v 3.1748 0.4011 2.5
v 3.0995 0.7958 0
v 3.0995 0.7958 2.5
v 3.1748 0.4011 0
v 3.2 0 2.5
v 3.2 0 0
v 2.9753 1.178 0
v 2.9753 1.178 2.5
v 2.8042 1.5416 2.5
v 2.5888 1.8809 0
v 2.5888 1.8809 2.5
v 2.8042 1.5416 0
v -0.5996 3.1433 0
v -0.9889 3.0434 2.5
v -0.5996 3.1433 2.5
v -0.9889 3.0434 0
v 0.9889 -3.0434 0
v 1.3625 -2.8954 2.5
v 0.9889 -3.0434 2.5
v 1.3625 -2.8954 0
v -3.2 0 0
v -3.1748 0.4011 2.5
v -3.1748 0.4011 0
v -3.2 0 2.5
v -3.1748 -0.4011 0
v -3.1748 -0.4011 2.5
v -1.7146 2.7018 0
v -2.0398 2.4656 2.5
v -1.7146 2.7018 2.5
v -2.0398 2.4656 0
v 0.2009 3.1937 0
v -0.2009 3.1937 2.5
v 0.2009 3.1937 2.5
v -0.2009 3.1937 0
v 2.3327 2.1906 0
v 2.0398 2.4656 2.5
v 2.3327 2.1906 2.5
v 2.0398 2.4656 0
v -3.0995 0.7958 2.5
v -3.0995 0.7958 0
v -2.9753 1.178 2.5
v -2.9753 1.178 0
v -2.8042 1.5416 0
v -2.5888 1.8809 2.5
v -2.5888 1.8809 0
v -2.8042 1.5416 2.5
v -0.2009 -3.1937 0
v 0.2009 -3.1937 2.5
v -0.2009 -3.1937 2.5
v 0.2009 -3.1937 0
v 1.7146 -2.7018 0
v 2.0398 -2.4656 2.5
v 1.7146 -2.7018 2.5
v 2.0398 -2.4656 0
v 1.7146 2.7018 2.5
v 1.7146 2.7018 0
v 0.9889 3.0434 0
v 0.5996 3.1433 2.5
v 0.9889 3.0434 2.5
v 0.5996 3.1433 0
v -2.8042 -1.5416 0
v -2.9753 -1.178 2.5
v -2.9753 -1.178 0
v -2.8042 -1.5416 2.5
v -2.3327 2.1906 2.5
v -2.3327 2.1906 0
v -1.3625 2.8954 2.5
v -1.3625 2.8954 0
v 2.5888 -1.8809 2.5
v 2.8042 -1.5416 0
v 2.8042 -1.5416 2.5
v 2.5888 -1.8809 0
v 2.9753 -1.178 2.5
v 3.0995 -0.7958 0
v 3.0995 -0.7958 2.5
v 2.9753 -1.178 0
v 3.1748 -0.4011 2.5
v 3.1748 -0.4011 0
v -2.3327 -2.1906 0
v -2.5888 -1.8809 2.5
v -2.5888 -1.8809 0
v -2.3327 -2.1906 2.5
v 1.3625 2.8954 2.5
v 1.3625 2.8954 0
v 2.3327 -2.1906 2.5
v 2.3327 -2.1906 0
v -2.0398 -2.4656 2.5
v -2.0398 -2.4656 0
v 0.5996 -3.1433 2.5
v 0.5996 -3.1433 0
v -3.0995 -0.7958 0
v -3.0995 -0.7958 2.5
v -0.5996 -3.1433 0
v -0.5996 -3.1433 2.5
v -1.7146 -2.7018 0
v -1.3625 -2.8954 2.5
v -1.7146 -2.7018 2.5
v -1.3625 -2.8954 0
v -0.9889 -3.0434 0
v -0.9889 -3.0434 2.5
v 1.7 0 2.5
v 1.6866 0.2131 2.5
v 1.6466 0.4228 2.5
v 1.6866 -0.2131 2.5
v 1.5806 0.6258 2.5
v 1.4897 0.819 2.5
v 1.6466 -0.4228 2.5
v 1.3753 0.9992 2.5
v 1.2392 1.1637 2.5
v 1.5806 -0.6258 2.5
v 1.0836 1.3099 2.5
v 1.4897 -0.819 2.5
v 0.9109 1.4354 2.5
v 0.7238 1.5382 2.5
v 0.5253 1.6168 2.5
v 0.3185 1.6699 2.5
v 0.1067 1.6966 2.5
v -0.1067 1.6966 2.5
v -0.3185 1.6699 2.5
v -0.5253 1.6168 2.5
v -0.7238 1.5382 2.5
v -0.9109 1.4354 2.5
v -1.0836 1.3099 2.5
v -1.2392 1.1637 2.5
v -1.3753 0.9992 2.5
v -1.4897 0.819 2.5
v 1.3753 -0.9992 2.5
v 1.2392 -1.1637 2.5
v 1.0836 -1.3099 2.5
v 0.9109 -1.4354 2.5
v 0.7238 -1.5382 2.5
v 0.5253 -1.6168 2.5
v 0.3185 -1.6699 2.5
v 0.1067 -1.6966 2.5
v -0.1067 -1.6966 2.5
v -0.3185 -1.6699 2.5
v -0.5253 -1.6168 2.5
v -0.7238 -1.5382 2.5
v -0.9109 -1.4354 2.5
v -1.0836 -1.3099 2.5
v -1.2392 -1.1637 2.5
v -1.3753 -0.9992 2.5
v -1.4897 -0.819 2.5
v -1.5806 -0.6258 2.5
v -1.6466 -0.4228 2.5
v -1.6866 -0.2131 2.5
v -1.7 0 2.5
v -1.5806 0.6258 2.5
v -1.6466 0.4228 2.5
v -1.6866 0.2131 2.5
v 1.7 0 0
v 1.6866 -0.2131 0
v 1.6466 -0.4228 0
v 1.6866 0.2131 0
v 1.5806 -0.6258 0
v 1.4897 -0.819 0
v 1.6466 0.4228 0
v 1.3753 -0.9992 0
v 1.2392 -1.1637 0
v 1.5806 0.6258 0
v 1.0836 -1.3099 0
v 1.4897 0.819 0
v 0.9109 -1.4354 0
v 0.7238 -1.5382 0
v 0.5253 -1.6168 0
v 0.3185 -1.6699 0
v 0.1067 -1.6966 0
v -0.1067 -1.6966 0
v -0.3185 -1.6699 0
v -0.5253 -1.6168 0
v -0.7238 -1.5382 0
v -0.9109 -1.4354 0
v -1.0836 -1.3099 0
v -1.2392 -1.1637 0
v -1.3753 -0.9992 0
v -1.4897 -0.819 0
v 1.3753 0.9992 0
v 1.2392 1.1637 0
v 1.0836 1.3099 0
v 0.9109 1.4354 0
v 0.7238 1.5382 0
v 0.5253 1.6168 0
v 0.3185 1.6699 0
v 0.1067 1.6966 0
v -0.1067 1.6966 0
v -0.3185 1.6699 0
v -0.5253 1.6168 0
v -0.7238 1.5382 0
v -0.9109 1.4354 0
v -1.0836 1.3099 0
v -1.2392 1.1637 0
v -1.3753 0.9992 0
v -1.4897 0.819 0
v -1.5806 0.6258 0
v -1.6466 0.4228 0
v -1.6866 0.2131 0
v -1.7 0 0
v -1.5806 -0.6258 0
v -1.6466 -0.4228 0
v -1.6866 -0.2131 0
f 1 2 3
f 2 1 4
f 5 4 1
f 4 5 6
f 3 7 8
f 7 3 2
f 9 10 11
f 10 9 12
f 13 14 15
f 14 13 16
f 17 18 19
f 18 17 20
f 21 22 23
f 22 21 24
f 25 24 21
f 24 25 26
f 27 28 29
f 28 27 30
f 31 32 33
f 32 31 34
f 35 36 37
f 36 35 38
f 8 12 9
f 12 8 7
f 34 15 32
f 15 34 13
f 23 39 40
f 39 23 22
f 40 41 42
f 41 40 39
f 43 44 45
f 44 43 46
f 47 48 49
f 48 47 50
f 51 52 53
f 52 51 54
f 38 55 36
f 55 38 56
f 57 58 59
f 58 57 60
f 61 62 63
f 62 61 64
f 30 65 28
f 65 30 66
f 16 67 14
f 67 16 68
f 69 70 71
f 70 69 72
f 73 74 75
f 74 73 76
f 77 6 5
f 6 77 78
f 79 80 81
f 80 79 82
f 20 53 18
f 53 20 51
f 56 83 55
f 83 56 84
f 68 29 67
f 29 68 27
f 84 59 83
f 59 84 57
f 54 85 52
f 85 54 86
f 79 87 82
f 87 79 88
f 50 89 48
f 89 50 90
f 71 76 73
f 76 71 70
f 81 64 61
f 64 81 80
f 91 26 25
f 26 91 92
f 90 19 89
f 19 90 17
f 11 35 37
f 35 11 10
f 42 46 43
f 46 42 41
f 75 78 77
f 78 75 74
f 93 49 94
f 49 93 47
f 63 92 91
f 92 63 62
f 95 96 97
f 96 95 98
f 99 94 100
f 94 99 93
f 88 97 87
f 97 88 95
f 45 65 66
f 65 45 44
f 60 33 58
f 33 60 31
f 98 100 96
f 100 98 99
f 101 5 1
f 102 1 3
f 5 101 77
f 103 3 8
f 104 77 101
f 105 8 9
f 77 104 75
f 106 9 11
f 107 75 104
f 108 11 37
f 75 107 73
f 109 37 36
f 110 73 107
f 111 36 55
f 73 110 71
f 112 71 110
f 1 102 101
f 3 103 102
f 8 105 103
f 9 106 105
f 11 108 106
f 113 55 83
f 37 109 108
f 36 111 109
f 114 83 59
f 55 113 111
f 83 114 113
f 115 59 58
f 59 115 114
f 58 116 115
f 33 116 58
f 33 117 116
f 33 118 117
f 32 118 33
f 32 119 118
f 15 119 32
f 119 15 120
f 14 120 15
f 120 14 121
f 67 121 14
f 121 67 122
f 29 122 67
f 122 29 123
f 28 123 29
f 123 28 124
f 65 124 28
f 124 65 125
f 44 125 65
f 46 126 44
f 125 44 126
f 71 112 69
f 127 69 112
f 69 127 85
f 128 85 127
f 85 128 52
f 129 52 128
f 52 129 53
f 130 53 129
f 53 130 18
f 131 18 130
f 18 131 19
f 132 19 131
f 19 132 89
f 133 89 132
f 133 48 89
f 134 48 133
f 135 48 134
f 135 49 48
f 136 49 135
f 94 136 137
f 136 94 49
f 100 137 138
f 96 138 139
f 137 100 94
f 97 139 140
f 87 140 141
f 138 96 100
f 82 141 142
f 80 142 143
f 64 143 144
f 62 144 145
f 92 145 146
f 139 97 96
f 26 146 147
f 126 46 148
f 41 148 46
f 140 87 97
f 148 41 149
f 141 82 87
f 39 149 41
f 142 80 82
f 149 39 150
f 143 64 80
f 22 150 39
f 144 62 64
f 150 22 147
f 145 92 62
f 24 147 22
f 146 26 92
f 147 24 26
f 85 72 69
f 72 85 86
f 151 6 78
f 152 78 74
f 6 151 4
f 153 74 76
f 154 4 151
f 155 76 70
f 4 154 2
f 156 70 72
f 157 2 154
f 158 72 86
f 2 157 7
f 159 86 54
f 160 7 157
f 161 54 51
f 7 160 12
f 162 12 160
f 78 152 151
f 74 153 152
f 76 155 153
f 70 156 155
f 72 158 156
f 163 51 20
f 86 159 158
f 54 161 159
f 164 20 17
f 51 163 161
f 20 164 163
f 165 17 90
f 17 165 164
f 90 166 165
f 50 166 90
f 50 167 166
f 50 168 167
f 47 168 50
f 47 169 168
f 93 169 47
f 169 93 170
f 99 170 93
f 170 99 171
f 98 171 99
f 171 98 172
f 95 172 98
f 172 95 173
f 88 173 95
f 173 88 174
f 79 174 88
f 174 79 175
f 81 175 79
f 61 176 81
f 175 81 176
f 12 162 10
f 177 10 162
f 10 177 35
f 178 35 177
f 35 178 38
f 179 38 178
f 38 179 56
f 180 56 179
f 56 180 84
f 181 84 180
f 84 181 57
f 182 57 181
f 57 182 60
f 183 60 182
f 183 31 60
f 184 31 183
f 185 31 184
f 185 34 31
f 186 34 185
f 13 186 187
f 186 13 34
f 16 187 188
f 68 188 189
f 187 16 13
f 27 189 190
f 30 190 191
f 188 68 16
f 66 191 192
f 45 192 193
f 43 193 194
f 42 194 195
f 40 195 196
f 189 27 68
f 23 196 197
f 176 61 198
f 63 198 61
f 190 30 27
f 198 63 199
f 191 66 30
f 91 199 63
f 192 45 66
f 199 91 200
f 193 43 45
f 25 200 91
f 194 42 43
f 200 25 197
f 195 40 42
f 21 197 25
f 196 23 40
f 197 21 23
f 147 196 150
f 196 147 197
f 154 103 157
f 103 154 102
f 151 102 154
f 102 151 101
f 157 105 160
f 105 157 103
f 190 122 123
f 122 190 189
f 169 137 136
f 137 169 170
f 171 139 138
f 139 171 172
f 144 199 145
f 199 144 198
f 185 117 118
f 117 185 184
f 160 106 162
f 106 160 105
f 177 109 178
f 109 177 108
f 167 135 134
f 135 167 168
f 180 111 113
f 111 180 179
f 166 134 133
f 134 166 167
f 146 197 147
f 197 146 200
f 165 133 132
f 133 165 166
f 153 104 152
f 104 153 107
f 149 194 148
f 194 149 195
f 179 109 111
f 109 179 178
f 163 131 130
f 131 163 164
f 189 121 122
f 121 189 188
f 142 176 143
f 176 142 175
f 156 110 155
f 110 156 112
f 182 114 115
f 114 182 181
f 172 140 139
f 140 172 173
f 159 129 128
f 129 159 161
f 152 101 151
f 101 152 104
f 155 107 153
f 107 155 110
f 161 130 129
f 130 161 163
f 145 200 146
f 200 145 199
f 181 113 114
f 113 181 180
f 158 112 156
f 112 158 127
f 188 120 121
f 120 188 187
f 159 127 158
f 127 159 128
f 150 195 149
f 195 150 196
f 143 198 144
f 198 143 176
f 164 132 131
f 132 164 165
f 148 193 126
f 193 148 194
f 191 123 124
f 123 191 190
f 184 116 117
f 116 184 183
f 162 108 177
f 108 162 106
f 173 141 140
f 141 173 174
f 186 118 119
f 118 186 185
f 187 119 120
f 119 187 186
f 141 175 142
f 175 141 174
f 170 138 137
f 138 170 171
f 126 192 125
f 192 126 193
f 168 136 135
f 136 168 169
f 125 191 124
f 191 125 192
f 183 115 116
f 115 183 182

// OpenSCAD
module spacer(inner, thickness, height) {
    difference() {
        cylinder(height, inner+thickness, inner+thickness, $fn=50);
        cylinder(height, inner, inner, $fn=50);
    }
}

spacer(1.7, 1.5, 2.5);
    
